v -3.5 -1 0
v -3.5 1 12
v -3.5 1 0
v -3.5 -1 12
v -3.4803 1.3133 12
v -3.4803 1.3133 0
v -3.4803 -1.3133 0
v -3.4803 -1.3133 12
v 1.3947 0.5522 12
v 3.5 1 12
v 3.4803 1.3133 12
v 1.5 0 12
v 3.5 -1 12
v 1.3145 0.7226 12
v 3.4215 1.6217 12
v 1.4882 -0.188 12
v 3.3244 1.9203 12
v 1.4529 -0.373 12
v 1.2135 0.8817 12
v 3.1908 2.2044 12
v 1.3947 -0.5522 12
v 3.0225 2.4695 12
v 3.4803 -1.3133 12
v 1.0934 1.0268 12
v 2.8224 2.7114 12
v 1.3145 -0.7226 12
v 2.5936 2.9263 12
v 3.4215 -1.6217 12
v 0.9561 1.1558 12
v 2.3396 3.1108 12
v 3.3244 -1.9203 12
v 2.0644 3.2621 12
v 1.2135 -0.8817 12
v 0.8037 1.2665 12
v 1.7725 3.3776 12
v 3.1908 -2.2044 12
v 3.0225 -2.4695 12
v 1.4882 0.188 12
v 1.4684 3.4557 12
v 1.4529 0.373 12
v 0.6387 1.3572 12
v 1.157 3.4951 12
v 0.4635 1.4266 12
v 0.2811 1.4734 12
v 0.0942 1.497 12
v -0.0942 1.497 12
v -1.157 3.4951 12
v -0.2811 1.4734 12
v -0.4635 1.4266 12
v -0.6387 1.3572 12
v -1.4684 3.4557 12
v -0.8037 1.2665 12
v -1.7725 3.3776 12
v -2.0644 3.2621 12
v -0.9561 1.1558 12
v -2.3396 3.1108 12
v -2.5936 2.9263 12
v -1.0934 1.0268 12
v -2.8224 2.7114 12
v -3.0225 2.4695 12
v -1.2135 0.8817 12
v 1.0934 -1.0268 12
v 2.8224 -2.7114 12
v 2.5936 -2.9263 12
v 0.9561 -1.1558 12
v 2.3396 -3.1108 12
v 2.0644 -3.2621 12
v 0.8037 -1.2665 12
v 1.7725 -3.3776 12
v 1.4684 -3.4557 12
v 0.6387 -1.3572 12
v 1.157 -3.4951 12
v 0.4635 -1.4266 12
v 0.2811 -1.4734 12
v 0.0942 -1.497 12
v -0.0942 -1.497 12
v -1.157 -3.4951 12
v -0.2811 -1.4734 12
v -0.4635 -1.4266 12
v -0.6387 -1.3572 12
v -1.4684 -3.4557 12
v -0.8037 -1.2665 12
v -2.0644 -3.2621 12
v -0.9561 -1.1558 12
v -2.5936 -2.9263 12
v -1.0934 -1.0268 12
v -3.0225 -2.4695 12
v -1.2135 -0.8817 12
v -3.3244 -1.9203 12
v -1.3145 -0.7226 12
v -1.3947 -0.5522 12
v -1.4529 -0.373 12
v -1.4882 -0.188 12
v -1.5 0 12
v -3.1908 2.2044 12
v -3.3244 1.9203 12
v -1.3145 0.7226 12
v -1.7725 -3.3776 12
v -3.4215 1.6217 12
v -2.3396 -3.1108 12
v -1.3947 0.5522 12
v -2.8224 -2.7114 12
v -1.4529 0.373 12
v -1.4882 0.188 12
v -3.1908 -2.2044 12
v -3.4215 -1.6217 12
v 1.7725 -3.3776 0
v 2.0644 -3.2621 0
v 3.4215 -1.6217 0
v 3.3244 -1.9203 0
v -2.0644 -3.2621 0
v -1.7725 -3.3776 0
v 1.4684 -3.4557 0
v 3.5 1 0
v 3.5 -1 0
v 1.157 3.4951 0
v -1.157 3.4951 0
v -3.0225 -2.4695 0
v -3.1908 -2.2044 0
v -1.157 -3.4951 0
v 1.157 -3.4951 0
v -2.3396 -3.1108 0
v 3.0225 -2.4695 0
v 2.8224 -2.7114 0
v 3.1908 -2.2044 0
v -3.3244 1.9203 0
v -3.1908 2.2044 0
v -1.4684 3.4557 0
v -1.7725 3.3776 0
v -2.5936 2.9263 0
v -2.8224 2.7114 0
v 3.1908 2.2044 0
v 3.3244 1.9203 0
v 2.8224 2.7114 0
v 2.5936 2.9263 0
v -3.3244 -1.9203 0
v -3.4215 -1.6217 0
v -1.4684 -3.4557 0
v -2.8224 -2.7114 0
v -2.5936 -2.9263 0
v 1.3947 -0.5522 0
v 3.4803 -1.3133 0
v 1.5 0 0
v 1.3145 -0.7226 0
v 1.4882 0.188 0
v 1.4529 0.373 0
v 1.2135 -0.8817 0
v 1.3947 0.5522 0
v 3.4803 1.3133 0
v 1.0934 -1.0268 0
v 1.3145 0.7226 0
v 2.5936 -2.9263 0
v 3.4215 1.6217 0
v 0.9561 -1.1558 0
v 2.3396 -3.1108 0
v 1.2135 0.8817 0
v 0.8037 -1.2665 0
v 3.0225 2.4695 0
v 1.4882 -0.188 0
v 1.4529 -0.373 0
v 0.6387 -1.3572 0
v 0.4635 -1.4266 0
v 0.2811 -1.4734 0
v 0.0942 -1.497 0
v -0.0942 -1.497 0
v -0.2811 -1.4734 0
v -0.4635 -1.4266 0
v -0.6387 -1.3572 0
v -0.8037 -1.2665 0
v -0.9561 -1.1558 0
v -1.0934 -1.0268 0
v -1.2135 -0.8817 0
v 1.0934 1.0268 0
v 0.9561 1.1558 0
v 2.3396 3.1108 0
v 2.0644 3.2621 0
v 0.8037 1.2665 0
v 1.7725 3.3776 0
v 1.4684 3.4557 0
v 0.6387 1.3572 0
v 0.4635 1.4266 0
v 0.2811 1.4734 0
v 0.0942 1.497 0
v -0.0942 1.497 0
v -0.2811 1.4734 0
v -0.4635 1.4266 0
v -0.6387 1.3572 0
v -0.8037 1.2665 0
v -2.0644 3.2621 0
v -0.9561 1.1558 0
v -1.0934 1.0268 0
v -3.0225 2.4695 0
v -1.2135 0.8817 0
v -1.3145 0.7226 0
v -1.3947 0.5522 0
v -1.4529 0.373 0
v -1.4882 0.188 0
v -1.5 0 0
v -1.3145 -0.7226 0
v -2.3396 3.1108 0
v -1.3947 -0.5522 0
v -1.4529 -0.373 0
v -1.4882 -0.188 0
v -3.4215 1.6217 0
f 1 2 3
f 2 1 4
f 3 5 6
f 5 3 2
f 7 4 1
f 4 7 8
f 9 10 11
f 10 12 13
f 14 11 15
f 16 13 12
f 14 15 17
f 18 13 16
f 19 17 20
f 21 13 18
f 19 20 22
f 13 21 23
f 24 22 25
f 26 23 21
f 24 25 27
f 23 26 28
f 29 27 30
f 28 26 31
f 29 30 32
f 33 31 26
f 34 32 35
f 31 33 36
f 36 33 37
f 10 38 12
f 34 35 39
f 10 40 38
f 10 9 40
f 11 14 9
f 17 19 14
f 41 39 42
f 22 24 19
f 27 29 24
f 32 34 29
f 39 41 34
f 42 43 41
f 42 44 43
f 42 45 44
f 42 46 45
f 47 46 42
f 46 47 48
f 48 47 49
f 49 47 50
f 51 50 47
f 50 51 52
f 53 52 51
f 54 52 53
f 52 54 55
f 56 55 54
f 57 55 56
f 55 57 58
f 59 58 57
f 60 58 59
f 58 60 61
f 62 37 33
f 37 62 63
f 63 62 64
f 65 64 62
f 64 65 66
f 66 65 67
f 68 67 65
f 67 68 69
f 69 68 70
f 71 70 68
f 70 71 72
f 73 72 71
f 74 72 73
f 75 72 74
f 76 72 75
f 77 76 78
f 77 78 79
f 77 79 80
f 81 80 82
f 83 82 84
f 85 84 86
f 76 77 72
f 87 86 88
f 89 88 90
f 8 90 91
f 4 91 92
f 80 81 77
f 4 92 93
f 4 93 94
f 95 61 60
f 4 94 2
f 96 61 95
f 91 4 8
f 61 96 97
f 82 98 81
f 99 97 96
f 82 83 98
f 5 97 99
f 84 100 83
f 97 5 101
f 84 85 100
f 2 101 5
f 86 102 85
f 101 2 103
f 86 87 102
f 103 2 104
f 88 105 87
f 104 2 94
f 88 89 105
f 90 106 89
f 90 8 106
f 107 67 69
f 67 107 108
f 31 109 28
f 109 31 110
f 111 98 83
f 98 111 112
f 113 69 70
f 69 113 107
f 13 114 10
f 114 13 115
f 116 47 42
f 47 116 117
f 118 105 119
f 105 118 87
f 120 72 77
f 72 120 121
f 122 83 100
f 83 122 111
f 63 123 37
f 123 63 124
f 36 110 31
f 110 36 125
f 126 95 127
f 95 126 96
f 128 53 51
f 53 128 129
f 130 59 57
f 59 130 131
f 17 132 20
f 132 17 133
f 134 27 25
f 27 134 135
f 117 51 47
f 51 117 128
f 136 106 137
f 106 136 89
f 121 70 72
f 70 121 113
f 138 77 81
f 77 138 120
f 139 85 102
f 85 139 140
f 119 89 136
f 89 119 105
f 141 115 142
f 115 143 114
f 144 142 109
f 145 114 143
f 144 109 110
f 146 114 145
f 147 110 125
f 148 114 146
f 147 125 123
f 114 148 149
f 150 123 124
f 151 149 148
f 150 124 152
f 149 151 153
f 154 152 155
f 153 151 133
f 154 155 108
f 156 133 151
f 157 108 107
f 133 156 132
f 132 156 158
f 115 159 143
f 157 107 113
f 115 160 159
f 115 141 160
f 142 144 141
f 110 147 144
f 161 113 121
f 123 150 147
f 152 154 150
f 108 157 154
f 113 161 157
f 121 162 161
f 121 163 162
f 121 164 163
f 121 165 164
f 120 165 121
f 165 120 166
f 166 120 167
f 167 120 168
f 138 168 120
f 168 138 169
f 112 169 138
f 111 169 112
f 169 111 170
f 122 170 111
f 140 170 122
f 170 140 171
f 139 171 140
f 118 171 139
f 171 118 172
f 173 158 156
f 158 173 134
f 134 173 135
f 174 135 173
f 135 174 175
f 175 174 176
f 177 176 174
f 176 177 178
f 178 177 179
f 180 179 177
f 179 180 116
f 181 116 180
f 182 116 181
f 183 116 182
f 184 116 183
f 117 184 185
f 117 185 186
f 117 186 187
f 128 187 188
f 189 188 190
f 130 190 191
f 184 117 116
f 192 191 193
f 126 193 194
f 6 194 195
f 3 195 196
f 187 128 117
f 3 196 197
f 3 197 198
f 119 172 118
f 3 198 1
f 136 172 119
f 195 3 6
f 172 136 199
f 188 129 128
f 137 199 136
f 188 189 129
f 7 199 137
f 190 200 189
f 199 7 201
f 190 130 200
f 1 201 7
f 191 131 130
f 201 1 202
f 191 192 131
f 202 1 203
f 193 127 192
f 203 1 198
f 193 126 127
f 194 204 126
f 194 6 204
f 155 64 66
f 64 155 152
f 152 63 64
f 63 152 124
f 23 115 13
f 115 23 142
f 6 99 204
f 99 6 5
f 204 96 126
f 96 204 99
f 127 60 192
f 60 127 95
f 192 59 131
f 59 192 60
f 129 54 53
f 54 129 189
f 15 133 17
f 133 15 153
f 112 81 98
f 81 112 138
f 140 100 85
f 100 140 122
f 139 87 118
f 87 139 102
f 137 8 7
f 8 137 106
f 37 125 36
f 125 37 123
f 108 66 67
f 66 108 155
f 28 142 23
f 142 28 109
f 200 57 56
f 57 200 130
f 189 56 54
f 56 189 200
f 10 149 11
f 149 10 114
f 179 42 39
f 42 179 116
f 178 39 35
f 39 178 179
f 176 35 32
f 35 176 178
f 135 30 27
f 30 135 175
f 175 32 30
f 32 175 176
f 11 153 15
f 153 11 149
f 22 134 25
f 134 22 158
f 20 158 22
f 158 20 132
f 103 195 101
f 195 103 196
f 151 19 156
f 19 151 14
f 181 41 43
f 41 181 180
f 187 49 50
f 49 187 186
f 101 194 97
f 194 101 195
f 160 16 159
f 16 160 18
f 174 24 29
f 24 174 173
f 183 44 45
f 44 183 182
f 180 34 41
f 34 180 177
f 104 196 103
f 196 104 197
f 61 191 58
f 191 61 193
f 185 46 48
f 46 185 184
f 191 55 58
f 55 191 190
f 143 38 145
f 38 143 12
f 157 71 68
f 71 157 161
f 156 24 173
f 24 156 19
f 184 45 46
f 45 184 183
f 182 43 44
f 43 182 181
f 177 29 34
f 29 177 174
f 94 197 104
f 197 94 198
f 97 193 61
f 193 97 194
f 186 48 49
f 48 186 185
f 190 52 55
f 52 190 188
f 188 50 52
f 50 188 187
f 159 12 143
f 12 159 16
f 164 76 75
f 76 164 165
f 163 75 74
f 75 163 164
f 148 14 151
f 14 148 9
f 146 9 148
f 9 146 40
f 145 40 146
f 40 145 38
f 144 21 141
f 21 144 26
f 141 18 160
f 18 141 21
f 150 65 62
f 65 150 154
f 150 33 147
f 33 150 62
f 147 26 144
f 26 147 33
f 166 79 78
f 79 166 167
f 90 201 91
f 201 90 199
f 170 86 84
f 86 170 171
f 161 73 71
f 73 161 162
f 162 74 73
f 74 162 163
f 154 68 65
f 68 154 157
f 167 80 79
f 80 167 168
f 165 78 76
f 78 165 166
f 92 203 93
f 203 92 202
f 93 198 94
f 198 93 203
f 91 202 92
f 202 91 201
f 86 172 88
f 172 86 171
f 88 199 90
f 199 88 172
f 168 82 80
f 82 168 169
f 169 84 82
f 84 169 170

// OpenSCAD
$fn = 50;


difference() {
	union() {
		translate(v = [0, 0, 0]) {
			rotate(a = [0, 0, 0]) {
				hull() {
					translate(v = [-1.0000000000, 1.0000000000, 0]) {
						rotate(a = [0, 0, 0]) {
							translate(v = [0, 0, 0]) {
								rotate(a = [0, 0, 0]) {
									cylinder(h = 12, r = 2.5000000000);
								}
							}
						}
					}
					translate(v = [1.0000000000, 1.0000000000, 0]) {
						rotate(a = [0, 0, 0]) {
							translate(v = [0, 0, 0]) {
								rotate(a = [0, 0, 0]) {
									cylinder(h = 12, r = 2.5000000000);
								}
							}
						}
					}
					translate(v = [-1.0000000000, -1.0000000000, 0]) {
						rotate(a = [0, 0, 0]) {
							translate(v = [0, 0, 0]) {
								rotate(a = [0, 0, 0]) {
									cylinder(h = 12, r = 2.5000000000);
								}
							}
						}
					}
					translate(v = [1.0000000000, -1.0000000000, 0]) {
						rotate(a = [0, 0, 0]) {
							translate(v = [0, 0, 0]) {
								rotate(a = [0, 0, 0]) {
									cylinder(h = 12, r = 2.5000000000);
								}
							}
						}
					}
				}
			}
		}
	}
	union() {
		translate(v = [0.0000000000, 0.0000000000, 0]) {
			rotate(a = [0, 0, 0]) {
				translate(v = [0, 0, -50]) {
					rotate(a = [0, 0, 0]) {
						cylinder(h = 100, r = 1.5000000000);
					}
				}
			}
		}
	}
}
